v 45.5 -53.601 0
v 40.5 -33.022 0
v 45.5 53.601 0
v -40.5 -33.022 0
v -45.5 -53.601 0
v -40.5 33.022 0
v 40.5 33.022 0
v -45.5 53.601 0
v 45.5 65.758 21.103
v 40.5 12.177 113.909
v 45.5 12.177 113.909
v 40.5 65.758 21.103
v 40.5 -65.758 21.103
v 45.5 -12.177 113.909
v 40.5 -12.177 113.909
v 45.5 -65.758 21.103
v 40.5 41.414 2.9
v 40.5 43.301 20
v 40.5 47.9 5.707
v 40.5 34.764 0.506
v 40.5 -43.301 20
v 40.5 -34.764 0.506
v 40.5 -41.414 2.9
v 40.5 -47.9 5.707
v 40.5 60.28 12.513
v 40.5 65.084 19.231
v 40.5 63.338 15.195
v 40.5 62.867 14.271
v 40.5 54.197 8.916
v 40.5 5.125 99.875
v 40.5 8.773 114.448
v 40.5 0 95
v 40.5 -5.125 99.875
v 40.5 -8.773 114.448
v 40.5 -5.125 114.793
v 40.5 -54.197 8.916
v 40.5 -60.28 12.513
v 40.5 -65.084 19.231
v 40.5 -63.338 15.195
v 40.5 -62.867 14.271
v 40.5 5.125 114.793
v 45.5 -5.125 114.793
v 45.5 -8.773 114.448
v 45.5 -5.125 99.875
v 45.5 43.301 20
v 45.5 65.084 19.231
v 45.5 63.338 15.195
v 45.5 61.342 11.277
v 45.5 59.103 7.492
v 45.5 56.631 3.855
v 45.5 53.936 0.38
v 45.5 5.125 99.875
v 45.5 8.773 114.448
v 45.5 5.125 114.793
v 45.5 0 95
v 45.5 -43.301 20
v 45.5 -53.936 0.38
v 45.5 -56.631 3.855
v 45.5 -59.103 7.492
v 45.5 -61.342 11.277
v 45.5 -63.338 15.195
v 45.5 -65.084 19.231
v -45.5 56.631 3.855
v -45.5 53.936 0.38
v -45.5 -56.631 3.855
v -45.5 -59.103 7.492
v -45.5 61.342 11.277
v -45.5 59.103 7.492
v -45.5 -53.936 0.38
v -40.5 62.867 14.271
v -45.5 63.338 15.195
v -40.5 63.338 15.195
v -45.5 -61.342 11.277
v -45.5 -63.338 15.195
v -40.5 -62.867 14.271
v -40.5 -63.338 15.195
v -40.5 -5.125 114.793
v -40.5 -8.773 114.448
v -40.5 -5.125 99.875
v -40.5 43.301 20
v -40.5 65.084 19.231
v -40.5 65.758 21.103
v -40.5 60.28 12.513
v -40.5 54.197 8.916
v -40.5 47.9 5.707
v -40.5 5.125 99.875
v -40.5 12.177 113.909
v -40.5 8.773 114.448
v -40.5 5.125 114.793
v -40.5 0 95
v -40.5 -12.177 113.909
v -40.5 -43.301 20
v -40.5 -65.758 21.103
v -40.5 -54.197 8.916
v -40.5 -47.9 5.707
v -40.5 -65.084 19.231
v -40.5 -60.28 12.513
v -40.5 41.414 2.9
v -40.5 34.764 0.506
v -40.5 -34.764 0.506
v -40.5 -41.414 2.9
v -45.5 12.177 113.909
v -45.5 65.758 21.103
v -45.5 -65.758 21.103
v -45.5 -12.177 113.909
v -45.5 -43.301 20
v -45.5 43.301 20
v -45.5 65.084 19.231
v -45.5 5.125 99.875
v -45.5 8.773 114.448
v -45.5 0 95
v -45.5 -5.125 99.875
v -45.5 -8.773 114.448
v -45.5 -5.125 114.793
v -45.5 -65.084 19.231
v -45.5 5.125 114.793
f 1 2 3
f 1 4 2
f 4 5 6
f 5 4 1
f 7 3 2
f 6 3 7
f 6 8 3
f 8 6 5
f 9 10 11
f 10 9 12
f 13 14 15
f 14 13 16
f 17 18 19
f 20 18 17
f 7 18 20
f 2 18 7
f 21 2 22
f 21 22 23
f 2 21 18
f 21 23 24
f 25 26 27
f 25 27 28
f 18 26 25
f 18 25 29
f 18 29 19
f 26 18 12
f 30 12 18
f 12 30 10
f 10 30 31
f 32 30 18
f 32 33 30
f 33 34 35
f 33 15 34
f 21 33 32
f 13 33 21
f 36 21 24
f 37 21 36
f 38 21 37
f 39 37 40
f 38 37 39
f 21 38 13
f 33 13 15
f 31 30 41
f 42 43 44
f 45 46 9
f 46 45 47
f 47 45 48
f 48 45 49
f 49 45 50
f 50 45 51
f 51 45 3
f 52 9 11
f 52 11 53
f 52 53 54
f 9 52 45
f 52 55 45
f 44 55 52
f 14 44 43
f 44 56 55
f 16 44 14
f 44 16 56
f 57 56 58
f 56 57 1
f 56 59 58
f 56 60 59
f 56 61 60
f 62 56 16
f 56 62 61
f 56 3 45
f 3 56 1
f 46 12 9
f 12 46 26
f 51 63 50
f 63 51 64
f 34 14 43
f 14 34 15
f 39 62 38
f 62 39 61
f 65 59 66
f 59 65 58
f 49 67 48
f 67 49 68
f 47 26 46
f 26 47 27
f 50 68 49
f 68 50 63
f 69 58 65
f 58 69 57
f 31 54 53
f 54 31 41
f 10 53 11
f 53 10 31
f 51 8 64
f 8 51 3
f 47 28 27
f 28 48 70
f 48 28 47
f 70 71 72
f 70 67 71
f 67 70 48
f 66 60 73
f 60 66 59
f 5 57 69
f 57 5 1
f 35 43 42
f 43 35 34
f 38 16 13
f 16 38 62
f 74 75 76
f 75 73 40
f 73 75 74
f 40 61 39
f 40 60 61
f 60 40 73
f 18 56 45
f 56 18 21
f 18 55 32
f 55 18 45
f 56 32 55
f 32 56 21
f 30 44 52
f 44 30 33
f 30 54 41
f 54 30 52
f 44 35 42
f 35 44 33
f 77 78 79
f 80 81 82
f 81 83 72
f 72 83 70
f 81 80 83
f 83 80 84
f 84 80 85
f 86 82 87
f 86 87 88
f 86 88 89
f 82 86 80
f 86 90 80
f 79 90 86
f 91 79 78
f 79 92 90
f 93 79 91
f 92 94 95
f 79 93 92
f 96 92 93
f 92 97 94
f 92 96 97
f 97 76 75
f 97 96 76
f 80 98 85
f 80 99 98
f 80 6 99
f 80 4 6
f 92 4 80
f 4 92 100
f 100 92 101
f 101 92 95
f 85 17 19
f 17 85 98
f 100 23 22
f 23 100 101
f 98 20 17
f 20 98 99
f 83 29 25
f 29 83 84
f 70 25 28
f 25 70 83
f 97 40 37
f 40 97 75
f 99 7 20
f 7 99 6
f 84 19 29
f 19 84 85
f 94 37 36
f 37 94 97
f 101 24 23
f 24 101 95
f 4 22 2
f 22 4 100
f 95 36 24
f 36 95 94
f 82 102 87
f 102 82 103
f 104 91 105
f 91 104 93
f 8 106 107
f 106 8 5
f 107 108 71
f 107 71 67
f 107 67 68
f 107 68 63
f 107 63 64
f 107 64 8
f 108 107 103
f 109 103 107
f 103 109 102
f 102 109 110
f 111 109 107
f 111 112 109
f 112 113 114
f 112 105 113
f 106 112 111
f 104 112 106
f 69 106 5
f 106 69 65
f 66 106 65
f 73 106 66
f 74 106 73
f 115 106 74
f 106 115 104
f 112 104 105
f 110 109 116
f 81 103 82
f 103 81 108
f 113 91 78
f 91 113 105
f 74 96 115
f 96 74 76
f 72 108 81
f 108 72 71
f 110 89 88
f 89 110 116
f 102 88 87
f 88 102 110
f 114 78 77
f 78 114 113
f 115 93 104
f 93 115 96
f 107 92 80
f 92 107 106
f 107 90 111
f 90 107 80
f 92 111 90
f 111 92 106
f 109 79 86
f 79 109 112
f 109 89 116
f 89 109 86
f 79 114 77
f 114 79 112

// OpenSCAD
// triangle stand

// clearance
tol = 0.25;

// innere insert parameters
iih = 10;
iiw = 10;
iil = 20;

// outer insert parameters
iod = 15;
ioh = iih;
irh = iih;
irw = 15;
irl = 6;

// drum thickness
odh = 80;

// side length
sod = 140;
sst = 5;
ssd = 225;

drum_delta = odh + (irl - sst);
z_offset = sod / 2 - irw / 2;

translate([0, 0, (sod + 40) / 4]) {
	rotate([0, -90, 0]) {
		translate([0, 0, -drum_delta / 2 - sst / 2]) side();
		translate([0, 0, 0]) connection(drum_delta);
		translate([0, 0, drum_delta / 2 + sst / 2]) side();
	}
}

module side() {
	difference() {
		difference() {
			intersection() {
				cylinder(d = sod + 40, h = sst, $fn = 3, center = true);
				cylinder(d = sod, h = sst, $fn = 100, center = true);
			}
			cylinder(d = sod - 40, h = sst + 0.2, $fn = 3, center = true);
		}
		translate([z_offset, 0, 0]) cube([irw + tol, irh + tol, irl], center = true);
	}
}

module connection(h) {
	difference() {
		intersection() {
			cylinder(d = sod + 40, h = h, $fn = 3, center = true);
			cylinder(d = sod, h = h, $fn = 100, center = true);
		}
		translate([z_offset, 0, 0]) cylinder(d = ssd, h = h + 0.2, $fn = 100, center = true);
	}
}
